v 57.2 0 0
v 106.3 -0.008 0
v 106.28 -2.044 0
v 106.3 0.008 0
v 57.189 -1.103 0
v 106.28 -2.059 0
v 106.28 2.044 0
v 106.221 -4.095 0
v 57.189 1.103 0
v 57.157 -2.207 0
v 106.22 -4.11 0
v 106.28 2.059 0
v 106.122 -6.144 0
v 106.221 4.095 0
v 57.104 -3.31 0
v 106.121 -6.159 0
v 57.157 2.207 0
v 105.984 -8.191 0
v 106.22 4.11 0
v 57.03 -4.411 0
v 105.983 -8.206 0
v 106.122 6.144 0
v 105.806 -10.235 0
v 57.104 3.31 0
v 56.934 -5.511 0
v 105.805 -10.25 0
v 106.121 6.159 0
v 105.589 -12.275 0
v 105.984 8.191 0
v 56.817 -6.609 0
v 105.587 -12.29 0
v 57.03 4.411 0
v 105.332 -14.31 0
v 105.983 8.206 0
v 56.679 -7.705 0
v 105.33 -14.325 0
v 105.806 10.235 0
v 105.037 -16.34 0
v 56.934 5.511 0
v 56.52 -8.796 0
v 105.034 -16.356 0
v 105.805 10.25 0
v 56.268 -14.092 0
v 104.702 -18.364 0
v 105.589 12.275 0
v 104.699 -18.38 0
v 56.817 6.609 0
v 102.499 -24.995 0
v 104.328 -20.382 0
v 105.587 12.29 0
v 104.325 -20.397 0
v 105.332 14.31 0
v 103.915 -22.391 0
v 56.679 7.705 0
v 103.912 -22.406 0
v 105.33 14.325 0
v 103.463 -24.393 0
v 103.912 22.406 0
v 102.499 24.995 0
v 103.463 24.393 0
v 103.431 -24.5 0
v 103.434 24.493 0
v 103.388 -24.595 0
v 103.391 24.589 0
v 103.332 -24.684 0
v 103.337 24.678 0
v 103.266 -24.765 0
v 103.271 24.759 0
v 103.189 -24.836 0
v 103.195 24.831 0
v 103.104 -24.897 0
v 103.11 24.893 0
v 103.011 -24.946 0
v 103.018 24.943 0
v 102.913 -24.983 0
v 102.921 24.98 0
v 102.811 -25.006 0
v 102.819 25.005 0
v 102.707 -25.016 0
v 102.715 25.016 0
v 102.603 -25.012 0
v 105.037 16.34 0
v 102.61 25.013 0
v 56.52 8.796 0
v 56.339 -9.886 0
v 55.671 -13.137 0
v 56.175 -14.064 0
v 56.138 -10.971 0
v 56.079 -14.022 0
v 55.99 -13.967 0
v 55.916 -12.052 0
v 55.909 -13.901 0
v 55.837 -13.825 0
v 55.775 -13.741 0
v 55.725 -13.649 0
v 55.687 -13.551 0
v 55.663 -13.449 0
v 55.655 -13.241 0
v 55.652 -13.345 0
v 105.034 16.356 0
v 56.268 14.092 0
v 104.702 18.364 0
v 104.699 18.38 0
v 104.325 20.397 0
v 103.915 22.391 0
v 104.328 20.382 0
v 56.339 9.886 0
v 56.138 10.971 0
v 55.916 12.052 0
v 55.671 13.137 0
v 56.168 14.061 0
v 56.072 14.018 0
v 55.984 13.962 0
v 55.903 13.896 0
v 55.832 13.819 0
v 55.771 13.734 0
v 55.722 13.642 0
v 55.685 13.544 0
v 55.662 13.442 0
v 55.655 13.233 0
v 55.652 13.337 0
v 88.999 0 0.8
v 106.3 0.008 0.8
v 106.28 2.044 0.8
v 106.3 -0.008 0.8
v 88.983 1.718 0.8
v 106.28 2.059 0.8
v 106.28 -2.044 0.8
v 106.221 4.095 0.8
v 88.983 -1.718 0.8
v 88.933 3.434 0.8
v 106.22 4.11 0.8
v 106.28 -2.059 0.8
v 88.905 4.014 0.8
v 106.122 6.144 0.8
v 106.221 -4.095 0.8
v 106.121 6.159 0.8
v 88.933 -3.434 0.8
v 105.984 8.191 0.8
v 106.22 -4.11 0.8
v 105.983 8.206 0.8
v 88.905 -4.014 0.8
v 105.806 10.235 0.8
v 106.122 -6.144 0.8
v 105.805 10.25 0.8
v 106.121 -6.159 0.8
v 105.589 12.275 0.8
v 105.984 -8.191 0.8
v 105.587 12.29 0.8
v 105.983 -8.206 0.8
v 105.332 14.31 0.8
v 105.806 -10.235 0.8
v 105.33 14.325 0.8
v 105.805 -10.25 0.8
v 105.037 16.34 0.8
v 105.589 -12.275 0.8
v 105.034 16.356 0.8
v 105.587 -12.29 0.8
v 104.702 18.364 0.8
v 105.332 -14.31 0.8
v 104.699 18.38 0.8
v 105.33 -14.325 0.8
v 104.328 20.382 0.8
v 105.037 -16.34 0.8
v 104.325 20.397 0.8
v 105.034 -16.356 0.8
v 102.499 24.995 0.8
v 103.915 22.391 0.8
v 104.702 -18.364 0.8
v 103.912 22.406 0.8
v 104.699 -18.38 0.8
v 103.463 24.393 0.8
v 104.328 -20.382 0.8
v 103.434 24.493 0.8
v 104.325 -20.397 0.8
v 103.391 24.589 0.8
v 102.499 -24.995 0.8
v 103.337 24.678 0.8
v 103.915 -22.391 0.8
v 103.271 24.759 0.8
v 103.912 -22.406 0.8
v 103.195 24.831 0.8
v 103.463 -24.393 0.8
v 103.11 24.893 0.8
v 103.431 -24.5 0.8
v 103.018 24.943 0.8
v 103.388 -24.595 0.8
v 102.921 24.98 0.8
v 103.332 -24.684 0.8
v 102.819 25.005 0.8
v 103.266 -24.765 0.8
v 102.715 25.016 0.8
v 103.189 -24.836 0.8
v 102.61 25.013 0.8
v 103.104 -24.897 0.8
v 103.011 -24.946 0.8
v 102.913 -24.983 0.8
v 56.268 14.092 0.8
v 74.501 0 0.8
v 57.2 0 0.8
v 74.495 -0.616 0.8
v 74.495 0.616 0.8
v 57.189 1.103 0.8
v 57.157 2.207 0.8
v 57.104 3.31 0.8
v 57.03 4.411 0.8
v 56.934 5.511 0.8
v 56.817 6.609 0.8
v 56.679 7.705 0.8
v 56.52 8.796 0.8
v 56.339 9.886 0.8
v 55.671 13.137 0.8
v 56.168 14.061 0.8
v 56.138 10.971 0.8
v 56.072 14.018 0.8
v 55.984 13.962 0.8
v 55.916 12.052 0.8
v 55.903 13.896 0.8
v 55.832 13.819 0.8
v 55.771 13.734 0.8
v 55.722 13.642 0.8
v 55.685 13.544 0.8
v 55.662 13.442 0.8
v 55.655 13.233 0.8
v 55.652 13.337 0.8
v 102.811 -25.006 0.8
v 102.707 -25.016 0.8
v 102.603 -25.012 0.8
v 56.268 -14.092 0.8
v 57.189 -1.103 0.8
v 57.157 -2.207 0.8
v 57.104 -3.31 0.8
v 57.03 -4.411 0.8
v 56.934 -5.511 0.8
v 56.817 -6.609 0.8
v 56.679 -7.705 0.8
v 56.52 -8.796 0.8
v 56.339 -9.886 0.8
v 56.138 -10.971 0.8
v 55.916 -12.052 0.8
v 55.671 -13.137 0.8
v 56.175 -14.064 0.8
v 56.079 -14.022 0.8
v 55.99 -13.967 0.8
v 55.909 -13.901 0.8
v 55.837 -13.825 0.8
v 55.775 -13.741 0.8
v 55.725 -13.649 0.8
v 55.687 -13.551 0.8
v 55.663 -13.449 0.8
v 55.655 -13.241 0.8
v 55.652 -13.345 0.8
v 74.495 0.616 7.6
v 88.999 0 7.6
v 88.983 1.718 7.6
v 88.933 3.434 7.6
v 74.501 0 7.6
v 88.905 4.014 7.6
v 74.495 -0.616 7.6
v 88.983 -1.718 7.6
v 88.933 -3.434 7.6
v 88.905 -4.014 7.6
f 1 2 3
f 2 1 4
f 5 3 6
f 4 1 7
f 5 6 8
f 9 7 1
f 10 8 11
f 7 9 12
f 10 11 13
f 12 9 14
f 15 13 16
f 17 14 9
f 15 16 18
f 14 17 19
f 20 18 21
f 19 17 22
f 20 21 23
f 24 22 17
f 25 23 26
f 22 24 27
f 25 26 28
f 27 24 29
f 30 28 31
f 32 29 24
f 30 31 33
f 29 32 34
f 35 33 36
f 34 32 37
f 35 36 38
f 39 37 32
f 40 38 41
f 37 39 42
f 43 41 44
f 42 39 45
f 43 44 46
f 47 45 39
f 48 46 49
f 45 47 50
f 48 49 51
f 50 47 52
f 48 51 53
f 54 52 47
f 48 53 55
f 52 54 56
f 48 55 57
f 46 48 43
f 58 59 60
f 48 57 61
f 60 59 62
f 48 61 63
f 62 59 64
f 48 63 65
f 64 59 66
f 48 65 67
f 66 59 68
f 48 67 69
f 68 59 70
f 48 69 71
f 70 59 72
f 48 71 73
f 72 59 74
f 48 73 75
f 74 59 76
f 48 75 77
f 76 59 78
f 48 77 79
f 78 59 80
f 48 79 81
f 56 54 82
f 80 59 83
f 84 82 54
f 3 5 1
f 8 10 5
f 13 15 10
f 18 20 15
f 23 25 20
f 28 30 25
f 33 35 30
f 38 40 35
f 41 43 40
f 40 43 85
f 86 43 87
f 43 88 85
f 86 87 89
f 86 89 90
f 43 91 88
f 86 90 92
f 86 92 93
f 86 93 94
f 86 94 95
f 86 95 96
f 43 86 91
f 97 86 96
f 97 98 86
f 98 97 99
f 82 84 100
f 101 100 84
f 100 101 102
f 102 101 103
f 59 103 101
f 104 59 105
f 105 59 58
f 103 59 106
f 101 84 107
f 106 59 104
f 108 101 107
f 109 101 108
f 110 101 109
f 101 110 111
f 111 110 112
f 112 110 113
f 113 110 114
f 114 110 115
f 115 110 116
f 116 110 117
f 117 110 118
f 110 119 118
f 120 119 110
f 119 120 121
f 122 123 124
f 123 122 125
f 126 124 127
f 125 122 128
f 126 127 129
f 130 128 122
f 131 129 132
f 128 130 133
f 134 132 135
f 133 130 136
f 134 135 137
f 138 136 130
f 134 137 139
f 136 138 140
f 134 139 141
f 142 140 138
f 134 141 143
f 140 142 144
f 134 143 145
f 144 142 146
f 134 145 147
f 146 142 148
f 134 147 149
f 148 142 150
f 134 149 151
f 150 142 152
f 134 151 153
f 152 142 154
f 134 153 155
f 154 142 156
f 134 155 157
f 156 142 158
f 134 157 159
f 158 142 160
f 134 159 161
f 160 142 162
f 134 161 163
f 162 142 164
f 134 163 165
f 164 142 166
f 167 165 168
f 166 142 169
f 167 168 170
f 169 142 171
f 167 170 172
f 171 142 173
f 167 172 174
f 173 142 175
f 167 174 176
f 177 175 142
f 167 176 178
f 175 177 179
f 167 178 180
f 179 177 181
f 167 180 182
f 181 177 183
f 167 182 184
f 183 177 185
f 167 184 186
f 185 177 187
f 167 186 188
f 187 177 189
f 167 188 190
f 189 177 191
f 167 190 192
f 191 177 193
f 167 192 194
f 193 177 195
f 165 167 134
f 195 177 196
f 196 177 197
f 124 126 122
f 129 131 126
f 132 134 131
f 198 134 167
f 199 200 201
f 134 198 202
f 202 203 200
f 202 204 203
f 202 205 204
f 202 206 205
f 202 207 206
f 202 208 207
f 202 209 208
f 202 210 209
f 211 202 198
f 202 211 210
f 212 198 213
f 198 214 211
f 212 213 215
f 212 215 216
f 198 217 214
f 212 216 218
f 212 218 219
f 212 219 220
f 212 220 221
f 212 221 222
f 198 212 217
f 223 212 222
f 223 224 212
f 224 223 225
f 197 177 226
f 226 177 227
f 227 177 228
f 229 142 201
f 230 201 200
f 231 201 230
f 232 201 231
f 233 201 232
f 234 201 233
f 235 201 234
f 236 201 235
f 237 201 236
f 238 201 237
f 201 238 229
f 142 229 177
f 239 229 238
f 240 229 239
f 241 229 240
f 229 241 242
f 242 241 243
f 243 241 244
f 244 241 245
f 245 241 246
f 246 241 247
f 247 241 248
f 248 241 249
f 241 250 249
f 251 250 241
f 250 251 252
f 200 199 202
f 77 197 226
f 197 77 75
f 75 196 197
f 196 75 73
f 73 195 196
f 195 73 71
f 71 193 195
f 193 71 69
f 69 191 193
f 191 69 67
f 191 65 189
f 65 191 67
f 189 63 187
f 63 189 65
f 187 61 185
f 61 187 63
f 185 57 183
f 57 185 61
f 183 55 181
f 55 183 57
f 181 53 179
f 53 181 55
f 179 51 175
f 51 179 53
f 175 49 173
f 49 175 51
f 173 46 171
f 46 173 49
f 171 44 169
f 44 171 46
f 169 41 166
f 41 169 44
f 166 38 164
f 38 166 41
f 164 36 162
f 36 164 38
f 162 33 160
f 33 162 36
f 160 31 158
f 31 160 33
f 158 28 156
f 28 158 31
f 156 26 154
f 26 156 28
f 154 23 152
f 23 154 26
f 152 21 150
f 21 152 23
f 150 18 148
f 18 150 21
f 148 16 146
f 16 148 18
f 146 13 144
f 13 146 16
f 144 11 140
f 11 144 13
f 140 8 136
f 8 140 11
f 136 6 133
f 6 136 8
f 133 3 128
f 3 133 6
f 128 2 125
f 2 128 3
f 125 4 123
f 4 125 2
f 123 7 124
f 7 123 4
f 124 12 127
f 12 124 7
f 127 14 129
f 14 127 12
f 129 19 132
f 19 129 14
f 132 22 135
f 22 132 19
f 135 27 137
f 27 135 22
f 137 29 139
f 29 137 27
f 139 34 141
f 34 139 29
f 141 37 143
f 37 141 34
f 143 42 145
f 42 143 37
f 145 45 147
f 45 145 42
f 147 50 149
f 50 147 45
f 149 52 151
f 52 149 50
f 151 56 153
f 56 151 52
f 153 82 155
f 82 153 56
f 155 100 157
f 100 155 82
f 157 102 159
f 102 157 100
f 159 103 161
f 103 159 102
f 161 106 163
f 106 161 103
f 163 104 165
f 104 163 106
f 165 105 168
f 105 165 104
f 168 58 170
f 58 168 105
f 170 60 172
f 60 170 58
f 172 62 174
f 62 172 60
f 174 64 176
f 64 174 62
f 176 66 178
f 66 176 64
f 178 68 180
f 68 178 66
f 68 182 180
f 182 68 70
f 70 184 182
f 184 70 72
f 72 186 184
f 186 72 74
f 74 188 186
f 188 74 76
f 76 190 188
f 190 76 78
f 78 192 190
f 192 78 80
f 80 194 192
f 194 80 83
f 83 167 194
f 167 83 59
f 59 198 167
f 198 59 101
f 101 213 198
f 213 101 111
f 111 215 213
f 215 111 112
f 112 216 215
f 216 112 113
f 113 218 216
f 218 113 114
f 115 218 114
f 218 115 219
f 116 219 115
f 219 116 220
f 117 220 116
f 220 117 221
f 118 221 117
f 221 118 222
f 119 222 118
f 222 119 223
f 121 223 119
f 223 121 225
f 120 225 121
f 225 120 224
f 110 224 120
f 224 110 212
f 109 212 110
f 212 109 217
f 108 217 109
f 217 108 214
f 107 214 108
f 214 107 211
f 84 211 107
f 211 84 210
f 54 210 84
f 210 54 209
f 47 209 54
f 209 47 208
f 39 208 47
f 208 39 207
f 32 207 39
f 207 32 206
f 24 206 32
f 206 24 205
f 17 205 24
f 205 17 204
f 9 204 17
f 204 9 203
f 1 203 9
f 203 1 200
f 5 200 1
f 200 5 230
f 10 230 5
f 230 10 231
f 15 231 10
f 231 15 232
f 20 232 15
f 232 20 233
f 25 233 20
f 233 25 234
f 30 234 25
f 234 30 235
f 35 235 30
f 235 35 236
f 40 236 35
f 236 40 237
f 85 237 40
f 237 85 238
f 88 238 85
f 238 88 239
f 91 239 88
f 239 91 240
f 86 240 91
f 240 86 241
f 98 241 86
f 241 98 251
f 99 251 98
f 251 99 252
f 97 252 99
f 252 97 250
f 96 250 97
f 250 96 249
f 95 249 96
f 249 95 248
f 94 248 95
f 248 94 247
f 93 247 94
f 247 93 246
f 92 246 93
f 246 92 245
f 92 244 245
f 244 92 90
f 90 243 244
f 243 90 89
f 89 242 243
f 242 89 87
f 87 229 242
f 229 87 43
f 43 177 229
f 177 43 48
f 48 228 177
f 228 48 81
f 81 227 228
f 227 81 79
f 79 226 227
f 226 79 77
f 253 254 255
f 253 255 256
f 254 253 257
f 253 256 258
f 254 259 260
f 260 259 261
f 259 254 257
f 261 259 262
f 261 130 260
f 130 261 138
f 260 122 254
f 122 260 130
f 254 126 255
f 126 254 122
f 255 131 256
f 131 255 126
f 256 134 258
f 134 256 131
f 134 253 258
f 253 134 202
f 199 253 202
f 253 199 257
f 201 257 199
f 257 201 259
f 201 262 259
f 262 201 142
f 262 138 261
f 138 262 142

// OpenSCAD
// Gen-CS — bobbin BASE (bottom flange + hub). Print x12, flange down. Wind 24 AWG x 306 t around
// the hub with the LID glued on (coil_lid.stl). Copper lives ONLY between the flanges (no proud winds).
include <parameters.scad>;
$fn = 48;
module sector_2d(r_in, r_out, ang) {
    polygon([
        for (a = [-ang/2 : ang/24 : ang/2]) [r_in*cos(a), r_in*sin(a)],
        for (a = [ang/2 : -ang/24 : -ang/2]) [r_out*cos(a), r_out*sin(a)]
    ]);
}
module footprint_2d() { offset(r=wall) sector_2d(coil_id_r, coil_od_r, span_deg); }
module hub_2d()       { offset(delta=-coil_core_inset) sector_2d(coil_id_r, coil_od_r, span_deg); }

union() {
    linear_extrude(flange_t) footprint_2d();
    translate([0, 0, flange_t - 0.01]) linear_extrude(former_web + 0.01) hub_2d();
}
